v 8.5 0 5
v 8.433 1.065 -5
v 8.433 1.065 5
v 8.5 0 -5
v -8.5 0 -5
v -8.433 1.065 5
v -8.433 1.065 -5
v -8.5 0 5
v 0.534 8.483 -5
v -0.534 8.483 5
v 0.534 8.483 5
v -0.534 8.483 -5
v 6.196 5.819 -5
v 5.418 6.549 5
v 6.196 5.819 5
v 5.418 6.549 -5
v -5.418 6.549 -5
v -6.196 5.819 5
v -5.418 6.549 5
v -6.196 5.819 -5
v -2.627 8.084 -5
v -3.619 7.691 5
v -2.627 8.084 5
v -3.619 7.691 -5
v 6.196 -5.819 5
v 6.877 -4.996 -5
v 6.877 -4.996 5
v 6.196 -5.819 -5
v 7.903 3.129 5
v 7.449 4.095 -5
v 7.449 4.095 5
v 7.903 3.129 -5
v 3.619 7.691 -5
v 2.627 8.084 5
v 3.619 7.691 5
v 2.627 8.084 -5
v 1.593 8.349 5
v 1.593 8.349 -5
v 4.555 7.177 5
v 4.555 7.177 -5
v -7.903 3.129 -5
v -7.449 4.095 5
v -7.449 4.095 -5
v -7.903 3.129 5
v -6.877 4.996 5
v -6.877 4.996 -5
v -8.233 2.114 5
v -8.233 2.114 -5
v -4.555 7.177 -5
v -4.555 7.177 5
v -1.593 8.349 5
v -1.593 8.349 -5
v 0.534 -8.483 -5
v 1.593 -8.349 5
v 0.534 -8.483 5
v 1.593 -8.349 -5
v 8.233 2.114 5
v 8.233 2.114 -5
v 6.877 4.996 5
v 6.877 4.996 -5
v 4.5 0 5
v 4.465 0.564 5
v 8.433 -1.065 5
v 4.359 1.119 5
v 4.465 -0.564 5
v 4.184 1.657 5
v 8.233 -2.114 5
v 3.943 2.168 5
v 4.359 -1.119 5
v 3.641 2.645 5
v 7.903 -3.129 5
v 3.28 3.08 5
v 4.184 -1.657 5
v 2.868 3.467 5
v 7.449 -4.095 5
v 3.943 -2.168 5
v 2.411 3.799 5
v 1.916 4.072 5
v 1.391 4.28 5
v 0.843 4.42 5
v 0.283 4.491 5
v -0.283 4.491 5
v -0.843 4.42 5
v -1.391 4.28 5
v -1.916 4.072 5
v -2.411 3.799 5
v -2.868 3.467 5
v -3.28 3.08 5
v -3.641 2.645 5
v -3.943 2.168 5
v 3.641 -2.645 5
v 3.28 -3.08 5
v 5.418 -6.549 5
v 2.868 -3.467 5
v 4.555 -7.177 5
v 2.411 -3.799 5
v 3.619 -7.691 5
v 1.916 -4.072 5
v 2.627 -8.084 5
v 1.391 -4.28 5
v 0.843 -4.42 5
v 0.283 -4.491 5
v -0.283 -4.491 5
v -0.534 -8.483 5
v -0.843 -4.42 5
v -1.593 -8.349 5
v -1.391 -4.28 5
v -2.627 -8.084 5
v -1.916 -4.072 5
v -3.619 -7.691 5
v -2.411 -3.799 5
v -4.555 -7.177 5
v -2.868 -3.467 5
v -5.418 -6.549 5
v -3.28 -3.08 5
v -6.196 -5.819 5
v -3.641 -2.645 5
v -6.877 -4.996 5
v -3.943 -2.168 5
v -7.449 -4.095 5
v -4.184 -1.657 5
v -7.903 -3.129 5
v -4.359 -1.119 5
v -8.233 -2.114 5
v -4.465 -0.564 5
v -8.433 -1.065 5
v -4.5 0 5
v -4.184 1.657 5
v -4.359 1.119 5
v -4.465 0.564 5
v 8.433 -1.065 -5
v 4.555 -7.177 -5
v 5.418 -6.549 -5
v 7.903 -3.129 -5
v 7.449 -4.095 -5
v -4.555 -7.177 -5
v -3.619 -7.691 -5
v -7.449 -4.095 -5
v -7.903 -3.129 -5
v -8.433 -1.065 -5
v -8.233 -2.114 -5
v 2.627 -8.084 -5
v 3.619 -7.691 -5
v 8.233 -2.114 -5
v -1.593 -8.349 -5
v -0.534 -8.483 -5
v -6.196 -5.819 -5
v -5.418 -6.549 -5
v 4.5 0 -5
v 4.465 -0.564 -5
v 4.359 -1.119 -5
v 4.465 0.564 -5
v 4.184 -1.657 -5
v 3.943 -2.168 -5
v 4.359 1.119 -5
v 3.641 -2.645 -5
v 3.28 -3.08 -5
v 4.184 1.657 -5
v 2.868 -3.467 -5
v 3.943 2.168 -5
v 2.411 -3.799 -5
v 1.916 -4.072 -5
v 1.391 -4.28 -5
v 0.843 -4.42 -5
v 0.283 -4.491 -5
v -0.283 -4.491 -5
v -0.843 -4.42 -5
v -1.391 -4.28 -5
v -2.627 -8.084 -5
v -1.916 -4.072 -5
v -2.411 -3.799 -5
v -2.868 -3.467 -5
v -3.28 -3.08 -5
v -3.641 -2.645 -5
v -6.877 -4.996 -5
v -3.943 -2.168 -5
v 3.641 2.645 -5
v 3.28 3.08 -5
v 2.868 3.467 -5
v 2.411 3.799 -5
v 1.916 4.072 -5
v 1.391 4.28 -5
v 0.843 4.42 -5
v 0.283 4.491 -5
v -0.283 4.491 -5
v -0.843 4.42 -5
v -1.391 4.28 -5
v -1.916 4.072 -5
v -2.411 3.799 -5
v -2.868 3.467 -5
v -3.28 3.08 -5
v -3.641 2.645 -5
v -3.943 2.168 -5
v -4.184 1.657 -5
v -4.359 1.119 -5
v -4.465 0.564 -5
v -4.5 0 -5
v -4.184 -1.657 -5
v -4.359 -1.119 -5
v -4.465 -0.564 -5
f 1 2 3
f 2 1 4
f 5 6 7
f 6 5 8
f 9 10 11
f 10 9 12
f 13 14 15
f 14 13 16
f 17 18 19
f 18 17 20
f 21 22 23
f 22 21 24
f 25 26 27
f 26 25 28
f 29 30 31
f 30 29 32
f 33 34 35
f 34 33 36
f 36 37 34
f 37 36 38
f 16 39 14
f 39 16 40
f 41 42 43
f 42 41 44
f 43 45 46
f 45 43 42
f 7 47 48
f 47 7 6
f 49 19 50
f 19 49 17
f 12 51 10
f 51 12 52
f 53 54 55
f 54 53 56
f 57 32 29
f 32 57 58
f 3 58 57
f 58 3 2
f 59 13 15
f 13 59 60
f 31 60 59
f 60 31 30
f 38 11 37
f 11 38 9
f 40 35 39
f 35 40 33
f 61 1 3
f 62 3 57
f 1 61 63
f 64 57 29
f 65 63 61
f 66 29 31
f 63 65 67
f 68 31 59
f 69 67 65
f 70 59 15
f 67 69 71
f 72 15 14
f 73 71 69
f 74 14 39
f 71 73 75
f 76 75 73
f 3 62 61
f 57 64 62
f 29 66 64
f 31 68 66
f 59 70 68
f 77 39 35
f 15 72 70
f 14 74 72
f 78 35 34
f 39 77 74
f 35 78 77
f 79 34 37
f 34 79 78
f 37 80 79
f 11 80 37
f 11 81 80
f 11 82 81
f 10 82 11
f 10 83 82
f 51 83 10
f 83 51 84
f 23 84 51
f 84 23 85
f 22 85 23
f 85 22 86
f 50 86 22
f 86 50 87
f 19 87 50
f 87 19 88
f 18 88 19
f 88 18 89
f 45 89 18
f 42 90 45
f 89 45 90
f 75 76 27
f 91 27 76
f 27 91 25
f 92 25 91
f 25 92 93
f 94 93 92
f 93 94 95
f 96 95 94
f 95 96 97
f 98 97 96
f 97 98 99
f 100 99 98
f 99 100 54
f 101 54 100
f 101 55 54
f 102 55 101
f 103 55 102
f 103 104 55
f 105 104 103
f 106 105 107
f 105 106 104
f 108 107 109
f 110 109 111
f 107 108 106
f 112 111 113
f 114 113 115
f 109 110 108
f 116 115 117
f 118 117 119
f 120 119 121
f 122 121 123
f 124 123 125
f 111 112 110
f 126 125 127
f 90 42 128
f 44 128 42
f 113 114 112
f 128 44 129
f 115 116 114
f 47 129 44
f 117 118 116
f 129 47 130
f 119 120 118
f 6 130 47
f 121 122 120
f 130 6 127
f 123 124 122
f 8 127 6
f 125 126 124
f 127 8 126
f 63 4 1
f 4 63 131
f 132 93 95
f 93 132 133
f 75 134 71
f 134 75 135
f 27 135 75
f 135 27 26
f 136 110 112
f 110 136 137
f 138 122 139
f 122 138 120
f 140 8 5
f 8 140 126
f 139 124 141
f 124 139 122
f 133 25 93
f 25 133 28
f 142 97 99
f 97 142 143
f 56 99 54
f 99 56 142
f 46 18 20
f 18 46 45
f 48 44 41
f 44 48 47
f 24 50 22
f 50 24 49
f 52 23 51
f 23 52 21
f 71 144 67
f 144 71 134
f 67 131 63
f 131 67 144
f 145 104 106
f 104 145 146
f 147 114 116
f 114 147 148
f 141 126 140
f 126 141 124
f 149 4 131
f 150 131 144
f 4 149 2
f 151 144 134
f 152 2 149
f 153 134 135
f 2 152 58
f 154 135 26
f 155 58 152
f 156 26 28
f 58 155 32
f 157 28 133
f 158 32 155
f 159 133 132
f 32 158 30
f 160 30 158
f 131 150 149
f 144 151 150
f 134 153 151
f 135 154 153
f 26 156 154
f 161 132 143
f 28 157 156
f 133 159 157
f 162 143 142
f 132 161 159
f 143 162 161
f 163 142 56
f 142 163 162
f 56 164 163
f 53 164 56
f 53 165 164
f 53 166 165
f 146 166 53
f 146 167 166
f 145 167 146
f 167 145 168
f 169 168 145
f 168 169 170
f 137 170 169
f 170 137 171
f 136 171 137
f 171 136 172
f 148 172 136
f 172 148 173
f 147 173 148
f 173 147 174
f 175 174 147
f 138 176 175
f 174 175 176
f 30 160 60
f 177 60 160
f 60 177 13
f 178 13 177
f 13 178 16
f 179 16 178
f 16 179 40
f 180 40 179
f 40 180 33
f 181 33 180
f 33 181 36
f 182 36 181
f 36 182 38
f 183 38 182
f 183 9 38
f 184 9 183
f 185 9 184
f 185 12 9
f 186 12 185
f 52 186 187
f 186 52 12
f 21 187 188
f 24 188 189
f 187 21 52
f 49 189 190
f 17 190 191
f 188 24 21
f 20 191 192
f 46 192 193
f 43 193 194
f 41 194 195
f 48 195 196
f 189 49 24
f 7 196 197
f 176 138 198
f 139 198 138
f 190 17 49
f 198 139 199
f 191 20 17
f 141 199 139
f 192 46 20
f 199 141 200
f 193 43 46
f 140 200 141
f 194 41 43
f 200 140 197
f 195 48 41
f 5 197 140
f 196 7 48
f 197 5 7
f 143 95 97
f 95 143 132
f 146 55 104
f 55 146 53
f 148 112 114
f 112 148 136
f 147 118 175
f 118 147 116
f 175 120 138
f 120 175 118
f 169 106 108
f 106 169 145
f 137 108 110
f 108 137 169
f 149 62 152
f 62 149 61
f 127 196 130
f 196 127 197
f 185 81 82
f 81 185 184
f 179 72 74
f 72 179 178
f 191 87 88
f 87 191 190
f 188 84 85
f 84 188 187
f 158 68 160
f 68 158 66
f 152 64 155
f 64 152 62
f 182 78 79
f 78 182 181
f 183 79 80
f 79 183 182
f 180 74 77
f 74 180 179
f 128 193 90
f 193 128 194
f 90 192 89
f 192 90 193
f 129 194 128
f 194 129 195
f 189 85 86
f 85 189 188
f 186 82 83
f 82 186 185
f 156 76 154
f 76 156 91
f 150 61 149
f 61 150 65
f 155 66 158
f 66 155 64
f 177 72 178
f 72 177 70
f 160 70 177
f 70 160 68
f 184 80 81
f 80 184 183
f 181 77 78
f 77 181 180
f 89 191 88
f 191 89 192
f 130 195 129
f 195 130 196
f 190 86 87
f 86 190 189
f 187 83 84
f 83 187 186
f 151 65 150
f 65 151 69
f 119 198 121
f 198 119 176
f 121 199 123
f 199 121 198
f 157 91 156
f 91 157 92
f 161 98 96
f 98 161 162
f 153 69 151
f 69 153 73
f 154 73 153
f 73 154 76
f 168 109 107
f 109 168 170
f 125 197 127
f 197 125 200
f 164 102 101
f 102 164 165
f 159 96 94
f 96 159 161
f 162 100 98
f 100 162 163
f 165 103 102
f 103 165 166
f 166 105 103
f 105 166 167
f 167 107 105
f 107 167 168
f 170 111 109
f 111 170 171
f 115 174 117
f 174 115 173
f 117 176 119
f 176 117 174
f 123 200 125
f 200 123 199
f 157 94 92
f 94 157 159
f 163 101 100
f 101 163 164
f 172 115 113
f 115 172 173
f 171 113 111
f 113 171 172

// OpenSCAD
$fn = 50;


difference() {
	union() {
		translate(v = [0, 0, -5.0000000000]) {
			cylinder(h = 10, r = 8.5000000000);
		}
	}
	union() {
		translate(v = [0, 0, -100.0000000000]) {
			cylinder(h = 200, r = 4.5000000000);
		}
	}
}
